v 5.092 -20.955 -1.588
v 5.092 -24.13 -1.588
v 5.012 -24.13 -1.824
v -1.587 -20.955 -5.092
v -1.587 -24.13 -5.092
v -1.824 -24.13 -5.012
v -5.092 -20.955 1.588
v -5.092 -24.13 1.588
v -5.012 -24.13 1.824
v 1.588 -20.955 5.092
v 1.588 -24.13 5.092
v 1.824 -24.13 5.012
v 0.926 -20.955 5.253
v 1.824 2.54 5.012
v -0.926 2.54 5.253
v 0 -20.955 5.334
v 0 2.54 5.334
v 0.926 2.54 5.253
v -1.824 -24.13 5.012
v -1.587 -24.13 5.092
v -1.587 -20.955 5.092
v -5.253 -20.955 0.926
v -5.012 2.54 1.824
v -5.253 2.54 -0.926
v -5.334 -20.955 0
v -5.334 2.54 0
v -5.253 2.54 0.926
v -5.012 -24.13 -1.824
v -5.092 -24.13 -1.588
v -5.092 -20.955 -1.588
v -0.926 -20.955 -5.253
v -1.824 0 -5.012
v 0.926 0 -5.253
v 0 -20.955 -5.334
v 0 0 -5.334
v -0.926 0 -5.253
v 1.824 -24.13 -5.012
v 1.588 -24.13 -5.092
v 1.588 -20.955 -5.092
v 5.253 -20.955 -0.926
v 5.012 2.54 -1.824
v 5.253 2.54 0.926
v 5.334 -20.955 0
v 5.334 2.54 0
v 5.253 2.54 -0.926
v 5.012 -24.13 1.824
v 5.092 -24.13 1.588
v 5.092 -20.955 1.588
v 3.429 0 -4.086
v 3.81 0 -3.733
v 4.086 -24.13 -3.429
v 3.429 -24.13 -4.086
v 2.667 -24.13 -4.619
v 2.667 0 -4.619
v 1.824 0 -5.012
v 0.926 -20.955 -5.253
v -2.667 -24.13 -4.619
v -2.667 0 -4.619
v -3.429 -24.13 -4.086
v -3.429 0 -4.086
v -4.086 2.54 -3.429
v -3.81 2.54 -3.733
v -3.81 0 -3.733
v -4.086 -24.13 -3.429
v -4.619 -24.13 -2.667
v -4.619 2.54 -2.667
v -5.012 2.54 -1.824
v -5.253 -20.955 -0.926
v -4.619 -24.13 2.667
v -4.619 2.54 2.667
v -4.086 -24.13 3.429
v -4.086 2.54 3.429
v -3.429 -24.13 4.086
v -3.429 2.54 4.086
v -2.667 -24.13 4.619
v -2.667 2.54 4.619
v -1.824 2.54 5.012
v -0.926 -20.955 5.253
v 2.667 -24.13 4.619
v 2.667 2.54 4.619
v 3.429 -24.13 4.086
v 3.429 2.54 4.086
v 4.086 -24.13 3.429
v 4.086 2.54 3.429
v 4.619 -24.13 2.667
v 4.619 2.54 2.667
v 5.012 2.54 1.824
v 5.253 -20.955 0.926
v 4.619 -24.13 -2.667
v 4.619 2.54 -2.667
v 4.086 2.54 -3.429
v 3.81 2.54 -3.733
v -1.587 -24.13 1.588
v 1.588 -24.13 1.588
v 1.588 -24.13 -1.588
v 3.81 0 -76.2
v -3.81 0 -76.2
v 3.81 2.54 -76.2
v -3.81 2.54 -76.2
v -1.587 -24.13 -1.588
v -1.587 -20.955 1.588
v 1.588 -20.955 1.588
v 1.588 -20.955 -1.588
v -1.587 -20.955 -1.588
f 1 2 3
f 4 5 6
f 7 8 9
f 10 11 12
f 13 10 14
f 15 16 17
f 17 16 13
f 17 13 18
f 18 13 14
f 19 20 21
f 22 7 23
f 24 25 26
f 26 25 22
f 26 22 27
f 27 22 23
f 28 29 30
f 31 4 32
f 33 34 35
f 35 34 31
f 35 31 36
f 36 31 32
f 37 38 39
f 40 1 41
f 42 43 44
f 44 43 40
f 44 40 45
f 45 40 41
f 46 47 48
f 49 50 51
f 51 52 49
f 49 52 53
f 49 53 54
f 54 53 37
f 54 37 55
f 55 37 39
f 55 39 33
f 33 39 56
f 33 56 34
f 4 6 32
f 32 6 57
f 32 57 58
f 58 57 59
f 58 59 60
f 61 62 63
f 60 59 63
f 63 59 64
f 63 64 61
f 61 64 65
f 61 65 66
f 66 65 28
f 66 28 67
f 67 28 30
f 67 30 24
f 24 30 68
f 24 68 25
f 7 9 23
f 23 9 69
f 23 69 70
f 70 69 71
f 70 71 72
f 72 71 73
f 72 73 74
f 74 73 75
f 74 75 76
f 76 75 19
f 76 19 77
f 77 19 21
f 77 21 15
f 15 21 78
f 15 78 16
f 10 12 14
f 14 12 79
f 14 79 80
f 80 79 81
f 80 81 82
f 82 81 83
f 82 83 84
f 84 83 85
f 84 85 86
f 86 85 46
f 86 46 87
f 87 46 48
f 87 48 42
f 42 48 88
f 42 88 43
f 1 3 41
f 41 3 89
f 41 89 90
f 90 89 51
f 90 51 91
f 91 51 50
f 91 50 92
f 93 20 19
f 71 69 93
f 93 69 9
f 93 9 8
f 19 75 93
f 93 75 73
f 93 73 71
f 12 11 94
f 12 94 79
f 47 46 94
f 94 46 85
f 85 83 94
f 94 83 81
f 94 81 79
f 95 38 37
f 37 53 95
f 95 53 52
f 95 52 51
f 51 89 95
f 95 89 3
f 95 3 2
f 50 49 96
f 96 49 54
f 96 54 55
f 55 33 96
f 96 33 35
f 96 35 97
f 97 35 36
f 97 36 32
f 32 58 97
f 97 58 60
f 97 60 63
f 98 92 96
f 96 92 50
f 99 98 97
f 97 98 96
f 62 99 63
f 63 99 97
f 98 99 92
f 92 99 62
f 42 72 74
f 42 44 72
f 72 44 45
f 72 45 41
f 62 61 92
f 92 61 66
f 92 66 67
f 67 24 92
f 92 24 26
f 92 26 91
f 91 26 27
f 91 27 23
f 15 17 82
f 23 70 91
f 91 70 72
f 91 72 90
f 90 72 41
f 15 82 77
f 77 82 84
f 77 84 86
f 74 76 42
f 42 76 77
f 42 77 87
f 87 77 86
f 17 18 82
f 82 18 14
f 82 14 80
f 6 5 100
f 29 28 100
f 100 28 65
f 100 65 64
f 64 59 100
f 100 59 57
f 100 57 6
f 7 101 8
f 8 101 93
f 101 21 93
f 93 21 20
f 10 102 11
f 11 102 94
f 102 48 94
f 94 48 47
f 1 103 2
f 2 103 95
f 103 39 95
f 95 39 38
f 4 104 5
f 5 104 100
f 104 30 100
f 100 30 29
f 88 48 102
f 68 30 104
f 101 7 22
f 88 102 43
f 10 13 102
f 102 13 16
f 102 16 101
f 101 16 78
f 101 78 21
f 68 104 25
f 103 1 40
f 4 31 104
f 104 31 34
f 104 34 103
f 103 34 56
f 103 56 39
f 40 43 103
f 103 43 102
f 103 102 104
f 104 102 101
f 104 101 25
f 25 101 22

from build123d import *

# Parameters (mm, degrees)
SKETCH2_R           = 5.334
SKETCH2_W           = 7.62
SKETCH2_H           = 76.2
BOSS_EXTRUDE1_DEPTH = 2.54
BOSS_EXTRUDE2_START = 24.13
SKETCH3_R           = 5.334
BOSS_EXTRUDE2_DEPTH = 24.13
SKETCH4_W           = 3.175
SKETCH4_H           = 3.175
CUT_EXTRUDE1_DEPTH  = 3.175


with BuildPart() as part:
    # Sketch2 → Boss-Extrude1 (new body)
    with BuildSketch(Plane(origin=(0, 0, 0), x_dir=(1, 0, 0), z_dir=(0, 1, 0))):
        Circle(SKETCH2_R)
        with Locations((0, 38.1)):
            Rectangle(SKETCH2_W, SKETCH2_H)
    extrude(amount=BOSS_EXTRUDE1_DEPTH)

    # Sketch3 → Boss-Extrude2 (add)
    with BuildSketch(Plane.XZ.offset(BOSS_EXTRUDE2_START)):
        with Locations(Location((0, 0, 0), (0, 0, 270))):
            Circle(SKETCH3_R)
    extrude(amount=-BOSS_EXTRUDE2_DEPTH)

    # Sketch4 → Cut-Extrude1 (cut)
    with BuildSketch(Plane.XZ.offset(24.13)):
        with BuildLine():
            Line((-1.5875, -1.5875), (-1.5875, 1.5875))
            Line((-1.5875, 1.5875), (-5.092288263, 1.5875))
            ThreePointArc((-5.092288263, 1.5875), (-5.334, 0), (-5.092288263, -1.5875))
            Line((-5.092288263, -1.5875), (-1.5875, -1.5875))
        make_face()
        Rectangle(SKETCH4_W, SKETCH4_H)
        with BuildLine():
            ThreePointArc((1.5875, 5.092288263), (0, 5.334), (-1.5875, 5.092288263))
            Line((-1.5875, 5.092288263), (-1.5875, 1.5875))
            Line((-1.5875, 1.5875), (1.5875, 1.5875))
            Line((1.5875, 1.5875), (1.5875, 5.092288263))
        make_face()
        with BuildLine():
            Line((5.092288263, 1.5875), (1.5875, 1.5875))
            Line((1.5875, 1.5875), (1.5875, -1.5875))
            Line((1.5875, -1.5875), (5.092288263, -1.5875))
            ThreePointArc((5.092288263, -1.5875), (5.273225843, -0.802898003), (5.334, 0))
            ThreePointArc((5.334, 0), (5.273225843, 0.802898003), (5.092288263, 1.5875))
        make_face()
        with BuildLine():
            Line((1.5875, -1.5875), (-1.5875, -1.5875))
            Line((-1.5875, -1.5875), (-1.5875, -5.092288263))
            ThreePointArc((-1.5875, -5.092288263), (0, -5.334), (1.5875, -5.092288263))
            Line((1.5875, -5.092288263), (1.5875, -1.5875))
        make_face()
    extrude(amount=-CUT_EXTRUDE1_DEPTH, mode=Mode.SUBTRACT)


solid = part.part
